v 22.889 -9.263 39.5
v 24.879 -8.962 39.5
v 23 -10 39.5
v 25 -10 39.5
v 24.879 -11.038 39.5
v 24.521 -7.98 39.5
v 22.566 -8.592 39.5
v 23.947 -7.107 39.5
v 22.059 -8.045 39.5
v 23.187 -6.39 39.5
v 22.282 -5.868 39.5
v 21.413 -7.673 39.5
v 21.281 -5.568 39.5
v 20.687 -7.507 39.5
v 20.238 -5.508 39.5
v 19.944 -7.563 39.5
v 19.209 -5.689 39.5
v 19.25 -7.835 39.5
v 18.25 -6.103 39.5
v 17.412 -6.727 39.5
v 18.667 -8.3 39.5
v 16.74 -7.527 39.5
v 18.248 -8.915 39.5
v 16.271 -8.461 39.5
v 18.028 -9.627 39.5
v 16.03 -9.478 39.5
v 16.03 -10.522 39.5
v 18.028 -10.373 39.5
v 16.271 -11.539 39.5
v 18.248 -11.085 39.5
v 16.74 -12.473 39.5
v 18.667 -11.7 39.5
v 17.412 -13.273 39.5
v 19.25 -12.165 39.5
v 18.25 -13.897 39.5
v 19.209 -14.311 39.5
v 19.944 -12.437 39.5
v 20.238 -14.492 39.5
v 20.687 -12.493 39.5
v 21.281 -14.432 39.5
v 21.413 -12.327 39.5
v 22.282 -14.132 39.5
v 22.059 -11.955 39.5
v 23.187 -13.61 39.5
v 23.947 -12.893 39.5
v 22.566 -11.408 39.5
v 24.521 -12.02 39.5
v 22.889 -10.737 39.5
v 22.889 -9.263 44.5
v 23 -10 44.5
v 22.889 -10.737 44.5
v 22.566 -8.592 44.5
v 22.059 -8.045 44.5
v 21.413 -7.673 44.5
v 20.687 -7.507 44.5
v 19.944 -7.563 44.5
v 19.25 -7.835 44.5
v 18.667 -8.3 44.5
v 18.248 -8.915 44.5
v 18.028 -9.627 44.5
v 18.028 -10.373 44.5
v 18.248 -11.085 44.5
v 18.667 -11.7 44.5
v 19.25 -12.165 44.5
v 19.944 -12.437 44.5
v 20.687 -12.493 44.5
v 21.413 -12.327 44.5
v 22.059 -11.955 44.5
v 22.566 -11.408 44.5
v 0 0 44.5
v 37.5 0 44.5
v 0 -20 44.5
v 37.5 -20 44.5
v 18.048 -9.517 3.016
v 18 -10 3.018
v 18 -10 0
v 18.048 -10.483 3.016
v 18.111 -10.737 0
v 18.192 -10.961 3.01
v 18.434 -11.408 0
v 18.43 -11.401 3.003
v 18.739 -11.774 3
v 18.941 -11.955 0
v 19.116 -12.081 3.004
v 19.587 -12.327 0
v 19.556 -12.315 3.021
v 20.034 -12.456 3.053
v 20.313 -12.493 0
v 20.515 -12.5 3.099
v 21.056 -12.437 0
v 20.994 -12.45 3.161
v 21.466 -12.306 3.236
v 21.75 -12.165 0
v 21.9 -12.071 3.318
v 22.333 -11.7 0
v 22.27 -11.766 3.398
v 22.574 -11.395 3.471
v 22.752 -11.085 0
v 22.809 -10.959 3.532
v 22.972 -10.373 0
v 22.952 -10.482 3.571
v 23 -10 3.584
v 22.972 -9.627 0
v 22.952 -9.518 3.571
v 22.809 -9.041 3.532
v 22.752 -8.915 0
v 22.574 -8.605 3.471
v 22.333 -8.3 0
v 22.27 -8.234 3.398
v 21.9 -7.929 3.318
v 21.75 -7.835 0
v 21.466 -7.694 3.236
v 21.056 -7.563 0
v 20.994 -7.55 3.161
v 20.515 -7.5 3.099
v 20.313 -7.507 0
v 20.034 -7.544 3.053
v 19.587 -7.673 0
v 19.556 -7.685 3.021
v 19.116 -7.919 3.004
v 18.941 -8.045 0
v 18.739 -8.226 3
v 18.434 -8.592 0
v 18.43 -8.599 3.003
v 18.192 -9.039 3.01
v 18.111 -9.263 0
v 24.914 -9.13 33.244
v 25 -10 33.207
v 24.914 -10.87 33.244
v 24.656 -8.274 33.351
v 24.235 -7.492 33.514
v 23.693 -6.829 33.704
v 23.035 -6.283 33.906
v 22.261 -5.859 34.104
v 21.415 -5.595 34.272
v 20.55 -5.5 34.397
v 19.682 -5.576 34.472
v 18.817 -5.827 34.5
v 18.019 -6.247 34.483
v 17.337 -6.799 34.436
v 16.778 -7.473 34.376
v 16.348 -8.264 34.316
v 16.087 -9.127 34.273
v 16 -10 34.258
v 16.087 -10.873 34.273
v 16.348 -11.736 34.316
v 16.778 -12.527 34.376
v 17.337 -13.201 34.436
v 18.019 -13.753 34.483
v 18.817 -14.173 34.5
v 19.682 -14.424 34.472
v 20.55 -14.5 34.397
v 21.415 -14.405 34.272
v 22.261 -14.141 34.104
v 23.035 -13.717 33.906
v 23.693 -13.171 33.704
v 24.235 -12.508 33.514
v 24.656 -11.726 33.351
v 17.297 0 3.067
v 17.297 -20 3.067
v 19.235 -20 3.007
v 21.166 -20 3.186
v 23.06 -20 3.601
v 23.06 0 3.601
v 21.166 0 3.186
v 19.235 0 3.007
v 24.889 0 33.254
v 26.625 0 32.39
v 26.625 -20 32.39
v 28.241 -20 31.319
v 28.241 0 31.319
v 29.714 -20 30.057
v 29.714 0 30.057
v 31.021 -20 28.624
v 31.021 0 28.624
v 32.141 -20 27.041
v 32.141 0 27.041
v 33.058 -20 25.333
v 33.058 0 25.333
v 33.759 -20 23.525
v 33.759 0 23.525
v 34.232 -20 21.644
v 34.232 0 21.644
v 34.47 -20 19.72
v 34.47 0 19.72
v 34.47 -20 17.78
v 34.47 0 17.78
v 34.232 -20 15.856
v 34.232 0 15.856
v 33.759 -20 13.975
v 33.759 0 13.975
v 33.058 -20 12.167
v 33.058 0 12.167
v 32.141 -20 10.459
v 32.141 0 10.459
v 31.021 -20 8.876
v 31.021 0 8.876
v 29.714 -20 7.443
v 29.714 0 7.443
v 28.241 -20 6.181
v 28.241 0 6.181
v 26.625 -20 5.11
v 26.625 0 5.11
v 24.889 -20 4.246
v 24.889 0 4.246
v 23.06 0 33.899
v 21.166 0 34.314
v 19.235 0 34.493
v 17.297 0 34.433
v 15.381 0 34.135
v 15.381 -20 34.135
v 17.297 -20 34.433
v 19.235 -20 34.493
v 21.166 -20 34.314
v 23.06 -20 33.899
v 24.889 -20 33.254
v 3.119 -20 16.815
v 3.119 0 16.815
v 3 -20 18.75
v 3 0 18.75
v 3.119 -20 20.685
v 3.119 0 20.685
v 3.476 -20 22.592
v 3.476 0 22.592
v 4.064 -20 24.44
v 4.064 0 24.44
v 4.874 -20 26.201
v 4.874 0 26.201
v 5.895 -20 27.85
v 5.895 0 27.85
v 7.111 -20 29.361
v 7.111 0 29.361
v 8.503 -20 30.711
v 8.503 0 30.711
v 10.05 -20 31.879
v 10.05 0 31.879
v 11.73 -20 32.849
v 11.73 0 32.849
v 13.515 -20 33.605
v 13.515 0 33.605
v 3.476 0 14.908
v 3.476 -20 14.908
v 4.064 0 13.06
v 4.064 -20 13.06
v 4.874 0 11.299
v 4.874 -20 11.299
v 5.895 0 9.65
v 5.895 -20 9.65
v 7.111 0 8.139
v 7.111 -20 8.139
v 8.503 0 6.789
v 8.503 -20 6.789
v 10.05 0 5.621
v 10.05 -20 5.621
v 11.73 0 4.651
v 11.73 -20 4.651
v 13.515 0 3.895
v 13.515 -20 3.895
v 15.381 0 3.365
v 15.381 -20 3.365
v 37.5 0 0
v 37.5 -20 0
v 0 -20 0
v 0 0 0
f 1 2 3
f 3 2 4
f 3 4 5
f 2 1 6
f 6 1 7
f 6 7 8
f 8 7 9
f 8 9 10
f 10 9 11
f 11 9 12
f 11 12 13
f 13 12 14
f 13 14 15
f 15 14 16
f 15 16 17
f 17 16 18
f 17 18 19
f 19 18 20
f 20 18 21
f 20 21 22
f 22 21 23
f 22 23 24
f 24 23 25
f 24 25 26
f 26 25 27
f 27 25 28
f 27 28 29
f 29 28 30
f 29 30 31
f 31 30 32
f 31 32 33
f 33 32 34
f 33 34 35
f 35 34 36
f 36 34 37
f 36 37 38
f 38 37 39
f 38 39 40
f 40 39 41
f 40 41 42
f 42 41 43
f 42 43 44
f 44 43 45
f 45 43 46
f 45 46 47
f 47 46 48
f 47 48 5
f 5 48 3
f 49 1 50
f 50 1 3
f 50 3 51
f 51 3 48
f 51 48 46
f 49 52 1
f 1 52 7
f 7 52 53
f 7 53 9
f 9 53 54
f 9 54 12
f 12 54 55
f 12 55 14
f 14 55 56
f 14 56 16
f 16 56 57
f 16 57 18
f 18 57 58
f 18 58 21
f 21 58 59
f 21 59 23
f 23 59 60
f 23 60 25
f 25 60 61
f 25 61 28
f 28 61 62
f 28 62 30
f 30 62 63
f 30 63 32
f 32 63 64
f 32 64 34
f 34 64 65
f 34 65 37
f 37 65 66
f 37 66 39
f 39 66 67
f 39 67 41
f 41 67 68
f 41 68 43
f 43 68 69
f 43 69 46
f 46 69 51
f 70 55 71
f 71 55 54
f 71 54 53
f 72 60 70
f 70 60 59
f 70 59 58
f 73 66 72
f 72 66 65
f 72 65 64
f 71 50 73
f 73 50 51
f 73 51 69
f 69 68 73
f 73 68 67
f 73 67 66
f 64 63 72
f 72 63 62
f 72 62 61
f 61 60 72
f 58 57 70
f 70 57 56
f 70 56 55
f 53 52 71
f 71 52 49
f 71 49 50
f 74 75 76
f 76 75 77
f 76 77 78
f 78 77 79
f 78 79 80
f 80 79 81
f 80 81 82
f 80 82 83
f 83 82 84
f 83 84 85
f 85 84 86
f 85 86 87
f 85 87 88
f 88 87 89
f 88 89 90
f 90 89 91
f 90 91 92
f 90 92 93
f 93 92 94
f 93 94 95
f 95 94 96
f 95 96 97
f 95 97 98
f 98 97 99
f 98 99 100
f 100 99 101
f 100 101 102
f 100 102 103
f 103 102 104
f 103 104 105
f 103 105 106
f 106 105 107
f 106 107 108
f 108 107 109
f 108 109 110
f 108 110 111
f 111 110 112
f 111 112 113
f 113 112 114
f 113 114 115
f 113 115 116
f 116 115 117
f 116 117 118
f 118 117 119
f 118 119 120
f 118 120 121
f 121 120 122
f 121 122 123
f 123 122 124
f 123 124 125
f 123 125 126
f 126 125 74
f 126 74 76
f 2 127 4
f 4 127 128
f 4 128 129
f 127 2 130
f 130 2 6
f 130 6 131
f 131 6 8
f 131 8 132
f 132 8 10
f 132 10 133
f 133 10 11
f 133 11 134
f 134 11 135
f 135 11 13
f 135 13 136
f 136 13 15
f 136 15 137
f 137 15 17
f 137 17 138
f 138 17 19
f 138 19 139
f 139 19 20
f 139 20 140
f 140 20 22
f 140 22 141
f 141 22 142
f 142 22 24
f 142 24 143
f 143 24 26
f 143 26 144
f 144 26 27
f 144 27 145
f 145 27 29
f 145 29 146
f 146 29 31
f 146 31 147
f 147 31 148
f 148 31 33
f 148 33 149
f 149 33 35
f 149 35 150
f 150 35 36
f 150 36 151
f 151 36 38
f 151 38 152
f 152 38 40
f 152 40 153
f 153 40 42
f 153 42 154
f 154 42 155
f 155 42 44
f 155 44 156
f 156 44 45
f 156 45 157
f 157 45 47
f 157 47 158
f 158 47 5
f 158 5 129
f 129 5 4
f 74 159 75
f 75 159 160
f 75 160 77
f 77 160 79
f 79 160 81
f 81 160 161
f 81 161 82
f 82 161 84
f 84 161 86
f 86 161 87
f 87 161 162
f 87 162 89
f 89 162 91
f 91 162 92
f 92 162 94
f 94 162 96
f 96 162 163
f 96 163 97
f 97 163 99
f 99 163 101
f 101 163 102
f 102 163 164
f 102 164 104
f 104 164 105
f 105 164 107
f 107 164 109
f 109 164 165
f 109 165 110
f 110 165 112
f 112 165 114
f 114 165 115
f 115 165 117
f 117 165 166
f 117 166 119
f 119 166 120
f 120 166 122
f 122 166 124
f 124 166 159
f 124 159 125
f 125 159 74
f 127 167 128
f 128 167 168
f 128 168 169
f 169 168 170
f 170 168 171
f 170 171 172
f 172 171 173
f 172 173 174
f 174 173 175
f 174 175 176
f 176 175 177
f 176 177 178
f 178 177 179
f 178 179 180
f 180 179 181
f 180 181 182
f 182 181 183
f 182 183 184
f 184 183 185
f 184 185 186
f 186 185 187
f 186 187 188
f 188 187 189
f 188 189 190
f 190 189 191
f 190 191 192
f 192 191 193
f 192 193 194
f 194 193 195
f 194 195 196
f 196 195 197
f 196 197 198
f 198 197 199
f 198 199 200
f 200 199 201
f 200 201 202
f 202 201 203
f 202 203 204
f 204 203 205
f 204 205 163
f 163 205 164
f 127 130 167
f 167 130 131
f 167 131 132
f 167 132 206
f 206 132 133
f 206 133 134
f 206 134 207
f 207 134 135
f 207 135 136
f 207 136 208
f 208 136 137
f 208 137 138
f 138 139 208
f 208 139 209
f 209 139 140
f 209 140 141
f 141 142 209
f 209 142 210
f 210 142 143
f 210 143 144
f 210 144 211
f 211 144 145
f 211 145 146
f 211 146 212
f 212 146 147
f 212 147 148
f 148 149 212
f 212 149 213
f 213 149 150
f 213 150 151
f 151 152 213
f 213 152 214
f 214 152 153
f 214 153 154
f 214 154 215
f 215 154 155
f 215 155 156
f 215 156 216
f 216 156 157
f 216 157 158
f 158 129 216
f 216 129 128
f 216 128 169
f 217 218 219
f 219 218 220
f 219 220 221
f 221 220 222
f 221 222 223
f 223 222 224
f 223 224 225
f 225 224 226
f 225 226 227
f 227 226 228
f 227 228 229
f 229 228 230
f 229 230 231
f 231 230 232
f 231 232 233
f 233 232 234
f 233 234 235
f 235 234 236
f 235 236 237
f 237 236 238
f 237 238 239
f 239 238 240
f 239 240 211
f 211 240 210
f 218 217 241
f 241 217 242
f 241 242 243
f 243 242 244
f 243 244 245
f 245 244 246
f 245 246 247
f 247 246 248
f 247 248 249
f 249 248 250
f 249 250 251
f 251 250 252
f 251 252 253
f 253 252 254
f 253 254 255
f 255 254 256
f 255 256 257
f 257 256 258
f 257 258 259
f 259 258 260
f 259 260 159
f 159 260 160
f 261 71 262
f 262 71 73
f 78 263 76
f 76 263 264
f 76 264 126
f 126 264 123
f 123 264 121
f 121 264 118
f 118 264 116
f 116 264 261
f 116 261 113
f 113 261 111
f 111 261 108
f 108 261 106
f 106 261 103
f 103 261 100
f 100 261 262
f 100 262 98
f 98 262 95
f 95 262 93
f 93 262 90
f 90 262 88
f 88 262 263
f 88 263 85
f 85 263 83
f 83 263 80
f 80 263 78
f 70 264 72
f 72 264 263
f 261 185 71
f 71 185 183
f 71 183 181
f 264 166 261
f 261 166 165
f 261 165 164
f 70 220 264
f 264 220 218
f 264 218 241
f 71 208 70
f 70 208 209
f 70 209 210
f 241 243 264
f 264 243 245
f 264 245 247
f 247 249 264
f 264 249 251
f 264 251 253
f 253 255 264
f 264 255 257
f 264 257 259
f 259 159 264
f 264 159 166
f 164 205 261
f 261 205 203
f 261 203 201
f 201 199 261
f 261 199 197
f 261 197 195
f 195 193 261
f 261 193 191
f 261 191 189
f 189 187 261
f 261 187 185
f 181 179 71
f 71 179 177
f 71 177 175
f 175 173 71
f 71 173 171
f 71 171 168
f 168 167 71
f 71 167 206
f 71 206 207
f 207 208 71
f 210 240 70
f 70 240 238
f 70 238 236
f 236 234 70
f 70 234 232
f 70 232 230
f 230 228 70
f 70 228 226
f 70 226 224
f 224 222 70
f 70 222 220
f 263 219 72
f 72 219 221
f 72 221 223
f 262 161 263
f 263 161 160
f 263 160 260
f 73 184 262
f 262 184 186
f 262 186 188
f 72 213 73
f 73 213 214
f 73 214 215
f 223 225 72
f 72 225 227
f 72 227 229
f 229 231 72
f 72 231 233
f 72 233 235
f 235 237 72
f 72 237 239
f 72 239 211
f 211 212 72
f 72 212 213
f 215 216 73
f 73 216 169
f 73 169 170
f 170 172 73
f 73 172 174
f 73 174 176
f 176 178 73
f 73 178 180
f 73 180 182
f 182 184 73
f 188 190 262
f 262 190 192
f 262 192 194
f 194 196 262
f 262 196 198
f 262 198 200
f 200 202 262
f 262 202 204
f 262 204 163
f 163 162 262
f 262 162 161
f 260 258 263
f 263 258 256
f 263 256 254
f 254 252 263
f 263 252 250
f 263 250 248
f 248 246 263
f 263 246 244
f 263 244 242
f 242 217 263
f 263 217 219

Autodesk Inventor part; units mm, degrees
ref_plane "YZ Plane" through (0, 0, 0) normal (1, 0, 0) x (0, 1, 0)
ref_plane "XZ Plane" through (0, 0, 0) normal (0, 1, 0) x (-1, 0, 0)
ref_plane "XY Plane" through (0, 0, 0) normal (0, 0, 1) x (1, 0, 0)
sketch "Sketch1" plane through (0, 0, 0) normal (0, 1, 0) x (-1, 0, 0)
  line L0 (0, 0) -> (-37.5, 0)
  line L1 (-37.5, 0) -> (-37.5, 37.5)
  line L2 (-37.5, 37.5) -> (0, 37.5)
  line L3 (0, 37.5) -> (0, 0)
  circle A0 centre (-18.75, 18.75) radius 15.75
  point P0 (-18.75, 0)
  dimension "d0" = 37.5
  dimension "d1" = 37.5
  dimension "d2" = 18.75
  dimension "d3" = 18.75
  dimension "d4" = 31.5
extrude "Extrusion1" add sketch "Sketch1" against normal blind 20
sketch "Sketch3" plane through (0, 0, 37.5) normal (0, 0, 1) x (1, 0, 0)
  circle A0 centre (20.5, -10) radius 4.5
  point P0 (0, 0)
  dimension "d8" = 9
extrude "Extrusion2" cut sketch "Sketch3" against normal blind 5
sketch "Sketch4" plane through (37.5, 0, 0) normal (0, 0, -1) x (-1, 0, 0)
  circle A0 centre (17, -10) radius 4.5 projected
  circle A1 centre (17, -10) radius 2.5
  point P0 (37.5, 0)
  dimension "d11" = 5
extrude "Extrusion3" cut sketch "Sketch4" against normal blind 5 contours A1
sketch "Sketch5" plane through (0, 0, 37.5) normal (0, 0, 1) x (1, 0, 0)
  line L0 (37.5, 0) -> (0, 0) projected
  line L1 (0, -20) -> (37.5, -20) projected
  line L2 (0, 0) -> (37.5, 0)
  line L3 (37.5, 0) -> (37.5, -20)
  line L4 (37.5, -20) -> (0, -20)
  line L5 (0, -20) -> (0, 0)
  line L6 (0, 0) -> (0, -20) projected
  line L7 (0, 0) -> (37.5, 0)
  line L8 (37.5, 0) -> (37.5, -20)
  line L9 (37.5, -20) -> (0, -20)
  line L10 (0, -20) -> (0, 0)
  circle A0 centre (20.5, -10) radius 4.5
extrude "Extrusion4" add sketch "Sketch5" along normal blind 2
sketch "Sketch6" plane through (0, 0, 39.5) normal (0, 0, 1) x (1, 0, 0)
  line L0 (0, 0) -> (0, -20) projected
  line L1 (0, -20) -> (37.5, -20) projected
  line L2 (0, 0) -> (37.5, 0)
  line L3 (37.5, 0) -> (37.5, -20)
  line L4 (37.5, -20) -> (0, -20)
  line L5 (0, -20) -> (0, 0)
  circle A0 centre (20.5, -10) radius 2.5
extrude "Extrusion5" add sketch "Sketch6" along normal blind 5
equation "\"d0\" = d1"
equation "\"d2\" = 0.5 * d1"
equation "\"d3\" = 0.5 * d0"
properties part number "welco mount v03"
